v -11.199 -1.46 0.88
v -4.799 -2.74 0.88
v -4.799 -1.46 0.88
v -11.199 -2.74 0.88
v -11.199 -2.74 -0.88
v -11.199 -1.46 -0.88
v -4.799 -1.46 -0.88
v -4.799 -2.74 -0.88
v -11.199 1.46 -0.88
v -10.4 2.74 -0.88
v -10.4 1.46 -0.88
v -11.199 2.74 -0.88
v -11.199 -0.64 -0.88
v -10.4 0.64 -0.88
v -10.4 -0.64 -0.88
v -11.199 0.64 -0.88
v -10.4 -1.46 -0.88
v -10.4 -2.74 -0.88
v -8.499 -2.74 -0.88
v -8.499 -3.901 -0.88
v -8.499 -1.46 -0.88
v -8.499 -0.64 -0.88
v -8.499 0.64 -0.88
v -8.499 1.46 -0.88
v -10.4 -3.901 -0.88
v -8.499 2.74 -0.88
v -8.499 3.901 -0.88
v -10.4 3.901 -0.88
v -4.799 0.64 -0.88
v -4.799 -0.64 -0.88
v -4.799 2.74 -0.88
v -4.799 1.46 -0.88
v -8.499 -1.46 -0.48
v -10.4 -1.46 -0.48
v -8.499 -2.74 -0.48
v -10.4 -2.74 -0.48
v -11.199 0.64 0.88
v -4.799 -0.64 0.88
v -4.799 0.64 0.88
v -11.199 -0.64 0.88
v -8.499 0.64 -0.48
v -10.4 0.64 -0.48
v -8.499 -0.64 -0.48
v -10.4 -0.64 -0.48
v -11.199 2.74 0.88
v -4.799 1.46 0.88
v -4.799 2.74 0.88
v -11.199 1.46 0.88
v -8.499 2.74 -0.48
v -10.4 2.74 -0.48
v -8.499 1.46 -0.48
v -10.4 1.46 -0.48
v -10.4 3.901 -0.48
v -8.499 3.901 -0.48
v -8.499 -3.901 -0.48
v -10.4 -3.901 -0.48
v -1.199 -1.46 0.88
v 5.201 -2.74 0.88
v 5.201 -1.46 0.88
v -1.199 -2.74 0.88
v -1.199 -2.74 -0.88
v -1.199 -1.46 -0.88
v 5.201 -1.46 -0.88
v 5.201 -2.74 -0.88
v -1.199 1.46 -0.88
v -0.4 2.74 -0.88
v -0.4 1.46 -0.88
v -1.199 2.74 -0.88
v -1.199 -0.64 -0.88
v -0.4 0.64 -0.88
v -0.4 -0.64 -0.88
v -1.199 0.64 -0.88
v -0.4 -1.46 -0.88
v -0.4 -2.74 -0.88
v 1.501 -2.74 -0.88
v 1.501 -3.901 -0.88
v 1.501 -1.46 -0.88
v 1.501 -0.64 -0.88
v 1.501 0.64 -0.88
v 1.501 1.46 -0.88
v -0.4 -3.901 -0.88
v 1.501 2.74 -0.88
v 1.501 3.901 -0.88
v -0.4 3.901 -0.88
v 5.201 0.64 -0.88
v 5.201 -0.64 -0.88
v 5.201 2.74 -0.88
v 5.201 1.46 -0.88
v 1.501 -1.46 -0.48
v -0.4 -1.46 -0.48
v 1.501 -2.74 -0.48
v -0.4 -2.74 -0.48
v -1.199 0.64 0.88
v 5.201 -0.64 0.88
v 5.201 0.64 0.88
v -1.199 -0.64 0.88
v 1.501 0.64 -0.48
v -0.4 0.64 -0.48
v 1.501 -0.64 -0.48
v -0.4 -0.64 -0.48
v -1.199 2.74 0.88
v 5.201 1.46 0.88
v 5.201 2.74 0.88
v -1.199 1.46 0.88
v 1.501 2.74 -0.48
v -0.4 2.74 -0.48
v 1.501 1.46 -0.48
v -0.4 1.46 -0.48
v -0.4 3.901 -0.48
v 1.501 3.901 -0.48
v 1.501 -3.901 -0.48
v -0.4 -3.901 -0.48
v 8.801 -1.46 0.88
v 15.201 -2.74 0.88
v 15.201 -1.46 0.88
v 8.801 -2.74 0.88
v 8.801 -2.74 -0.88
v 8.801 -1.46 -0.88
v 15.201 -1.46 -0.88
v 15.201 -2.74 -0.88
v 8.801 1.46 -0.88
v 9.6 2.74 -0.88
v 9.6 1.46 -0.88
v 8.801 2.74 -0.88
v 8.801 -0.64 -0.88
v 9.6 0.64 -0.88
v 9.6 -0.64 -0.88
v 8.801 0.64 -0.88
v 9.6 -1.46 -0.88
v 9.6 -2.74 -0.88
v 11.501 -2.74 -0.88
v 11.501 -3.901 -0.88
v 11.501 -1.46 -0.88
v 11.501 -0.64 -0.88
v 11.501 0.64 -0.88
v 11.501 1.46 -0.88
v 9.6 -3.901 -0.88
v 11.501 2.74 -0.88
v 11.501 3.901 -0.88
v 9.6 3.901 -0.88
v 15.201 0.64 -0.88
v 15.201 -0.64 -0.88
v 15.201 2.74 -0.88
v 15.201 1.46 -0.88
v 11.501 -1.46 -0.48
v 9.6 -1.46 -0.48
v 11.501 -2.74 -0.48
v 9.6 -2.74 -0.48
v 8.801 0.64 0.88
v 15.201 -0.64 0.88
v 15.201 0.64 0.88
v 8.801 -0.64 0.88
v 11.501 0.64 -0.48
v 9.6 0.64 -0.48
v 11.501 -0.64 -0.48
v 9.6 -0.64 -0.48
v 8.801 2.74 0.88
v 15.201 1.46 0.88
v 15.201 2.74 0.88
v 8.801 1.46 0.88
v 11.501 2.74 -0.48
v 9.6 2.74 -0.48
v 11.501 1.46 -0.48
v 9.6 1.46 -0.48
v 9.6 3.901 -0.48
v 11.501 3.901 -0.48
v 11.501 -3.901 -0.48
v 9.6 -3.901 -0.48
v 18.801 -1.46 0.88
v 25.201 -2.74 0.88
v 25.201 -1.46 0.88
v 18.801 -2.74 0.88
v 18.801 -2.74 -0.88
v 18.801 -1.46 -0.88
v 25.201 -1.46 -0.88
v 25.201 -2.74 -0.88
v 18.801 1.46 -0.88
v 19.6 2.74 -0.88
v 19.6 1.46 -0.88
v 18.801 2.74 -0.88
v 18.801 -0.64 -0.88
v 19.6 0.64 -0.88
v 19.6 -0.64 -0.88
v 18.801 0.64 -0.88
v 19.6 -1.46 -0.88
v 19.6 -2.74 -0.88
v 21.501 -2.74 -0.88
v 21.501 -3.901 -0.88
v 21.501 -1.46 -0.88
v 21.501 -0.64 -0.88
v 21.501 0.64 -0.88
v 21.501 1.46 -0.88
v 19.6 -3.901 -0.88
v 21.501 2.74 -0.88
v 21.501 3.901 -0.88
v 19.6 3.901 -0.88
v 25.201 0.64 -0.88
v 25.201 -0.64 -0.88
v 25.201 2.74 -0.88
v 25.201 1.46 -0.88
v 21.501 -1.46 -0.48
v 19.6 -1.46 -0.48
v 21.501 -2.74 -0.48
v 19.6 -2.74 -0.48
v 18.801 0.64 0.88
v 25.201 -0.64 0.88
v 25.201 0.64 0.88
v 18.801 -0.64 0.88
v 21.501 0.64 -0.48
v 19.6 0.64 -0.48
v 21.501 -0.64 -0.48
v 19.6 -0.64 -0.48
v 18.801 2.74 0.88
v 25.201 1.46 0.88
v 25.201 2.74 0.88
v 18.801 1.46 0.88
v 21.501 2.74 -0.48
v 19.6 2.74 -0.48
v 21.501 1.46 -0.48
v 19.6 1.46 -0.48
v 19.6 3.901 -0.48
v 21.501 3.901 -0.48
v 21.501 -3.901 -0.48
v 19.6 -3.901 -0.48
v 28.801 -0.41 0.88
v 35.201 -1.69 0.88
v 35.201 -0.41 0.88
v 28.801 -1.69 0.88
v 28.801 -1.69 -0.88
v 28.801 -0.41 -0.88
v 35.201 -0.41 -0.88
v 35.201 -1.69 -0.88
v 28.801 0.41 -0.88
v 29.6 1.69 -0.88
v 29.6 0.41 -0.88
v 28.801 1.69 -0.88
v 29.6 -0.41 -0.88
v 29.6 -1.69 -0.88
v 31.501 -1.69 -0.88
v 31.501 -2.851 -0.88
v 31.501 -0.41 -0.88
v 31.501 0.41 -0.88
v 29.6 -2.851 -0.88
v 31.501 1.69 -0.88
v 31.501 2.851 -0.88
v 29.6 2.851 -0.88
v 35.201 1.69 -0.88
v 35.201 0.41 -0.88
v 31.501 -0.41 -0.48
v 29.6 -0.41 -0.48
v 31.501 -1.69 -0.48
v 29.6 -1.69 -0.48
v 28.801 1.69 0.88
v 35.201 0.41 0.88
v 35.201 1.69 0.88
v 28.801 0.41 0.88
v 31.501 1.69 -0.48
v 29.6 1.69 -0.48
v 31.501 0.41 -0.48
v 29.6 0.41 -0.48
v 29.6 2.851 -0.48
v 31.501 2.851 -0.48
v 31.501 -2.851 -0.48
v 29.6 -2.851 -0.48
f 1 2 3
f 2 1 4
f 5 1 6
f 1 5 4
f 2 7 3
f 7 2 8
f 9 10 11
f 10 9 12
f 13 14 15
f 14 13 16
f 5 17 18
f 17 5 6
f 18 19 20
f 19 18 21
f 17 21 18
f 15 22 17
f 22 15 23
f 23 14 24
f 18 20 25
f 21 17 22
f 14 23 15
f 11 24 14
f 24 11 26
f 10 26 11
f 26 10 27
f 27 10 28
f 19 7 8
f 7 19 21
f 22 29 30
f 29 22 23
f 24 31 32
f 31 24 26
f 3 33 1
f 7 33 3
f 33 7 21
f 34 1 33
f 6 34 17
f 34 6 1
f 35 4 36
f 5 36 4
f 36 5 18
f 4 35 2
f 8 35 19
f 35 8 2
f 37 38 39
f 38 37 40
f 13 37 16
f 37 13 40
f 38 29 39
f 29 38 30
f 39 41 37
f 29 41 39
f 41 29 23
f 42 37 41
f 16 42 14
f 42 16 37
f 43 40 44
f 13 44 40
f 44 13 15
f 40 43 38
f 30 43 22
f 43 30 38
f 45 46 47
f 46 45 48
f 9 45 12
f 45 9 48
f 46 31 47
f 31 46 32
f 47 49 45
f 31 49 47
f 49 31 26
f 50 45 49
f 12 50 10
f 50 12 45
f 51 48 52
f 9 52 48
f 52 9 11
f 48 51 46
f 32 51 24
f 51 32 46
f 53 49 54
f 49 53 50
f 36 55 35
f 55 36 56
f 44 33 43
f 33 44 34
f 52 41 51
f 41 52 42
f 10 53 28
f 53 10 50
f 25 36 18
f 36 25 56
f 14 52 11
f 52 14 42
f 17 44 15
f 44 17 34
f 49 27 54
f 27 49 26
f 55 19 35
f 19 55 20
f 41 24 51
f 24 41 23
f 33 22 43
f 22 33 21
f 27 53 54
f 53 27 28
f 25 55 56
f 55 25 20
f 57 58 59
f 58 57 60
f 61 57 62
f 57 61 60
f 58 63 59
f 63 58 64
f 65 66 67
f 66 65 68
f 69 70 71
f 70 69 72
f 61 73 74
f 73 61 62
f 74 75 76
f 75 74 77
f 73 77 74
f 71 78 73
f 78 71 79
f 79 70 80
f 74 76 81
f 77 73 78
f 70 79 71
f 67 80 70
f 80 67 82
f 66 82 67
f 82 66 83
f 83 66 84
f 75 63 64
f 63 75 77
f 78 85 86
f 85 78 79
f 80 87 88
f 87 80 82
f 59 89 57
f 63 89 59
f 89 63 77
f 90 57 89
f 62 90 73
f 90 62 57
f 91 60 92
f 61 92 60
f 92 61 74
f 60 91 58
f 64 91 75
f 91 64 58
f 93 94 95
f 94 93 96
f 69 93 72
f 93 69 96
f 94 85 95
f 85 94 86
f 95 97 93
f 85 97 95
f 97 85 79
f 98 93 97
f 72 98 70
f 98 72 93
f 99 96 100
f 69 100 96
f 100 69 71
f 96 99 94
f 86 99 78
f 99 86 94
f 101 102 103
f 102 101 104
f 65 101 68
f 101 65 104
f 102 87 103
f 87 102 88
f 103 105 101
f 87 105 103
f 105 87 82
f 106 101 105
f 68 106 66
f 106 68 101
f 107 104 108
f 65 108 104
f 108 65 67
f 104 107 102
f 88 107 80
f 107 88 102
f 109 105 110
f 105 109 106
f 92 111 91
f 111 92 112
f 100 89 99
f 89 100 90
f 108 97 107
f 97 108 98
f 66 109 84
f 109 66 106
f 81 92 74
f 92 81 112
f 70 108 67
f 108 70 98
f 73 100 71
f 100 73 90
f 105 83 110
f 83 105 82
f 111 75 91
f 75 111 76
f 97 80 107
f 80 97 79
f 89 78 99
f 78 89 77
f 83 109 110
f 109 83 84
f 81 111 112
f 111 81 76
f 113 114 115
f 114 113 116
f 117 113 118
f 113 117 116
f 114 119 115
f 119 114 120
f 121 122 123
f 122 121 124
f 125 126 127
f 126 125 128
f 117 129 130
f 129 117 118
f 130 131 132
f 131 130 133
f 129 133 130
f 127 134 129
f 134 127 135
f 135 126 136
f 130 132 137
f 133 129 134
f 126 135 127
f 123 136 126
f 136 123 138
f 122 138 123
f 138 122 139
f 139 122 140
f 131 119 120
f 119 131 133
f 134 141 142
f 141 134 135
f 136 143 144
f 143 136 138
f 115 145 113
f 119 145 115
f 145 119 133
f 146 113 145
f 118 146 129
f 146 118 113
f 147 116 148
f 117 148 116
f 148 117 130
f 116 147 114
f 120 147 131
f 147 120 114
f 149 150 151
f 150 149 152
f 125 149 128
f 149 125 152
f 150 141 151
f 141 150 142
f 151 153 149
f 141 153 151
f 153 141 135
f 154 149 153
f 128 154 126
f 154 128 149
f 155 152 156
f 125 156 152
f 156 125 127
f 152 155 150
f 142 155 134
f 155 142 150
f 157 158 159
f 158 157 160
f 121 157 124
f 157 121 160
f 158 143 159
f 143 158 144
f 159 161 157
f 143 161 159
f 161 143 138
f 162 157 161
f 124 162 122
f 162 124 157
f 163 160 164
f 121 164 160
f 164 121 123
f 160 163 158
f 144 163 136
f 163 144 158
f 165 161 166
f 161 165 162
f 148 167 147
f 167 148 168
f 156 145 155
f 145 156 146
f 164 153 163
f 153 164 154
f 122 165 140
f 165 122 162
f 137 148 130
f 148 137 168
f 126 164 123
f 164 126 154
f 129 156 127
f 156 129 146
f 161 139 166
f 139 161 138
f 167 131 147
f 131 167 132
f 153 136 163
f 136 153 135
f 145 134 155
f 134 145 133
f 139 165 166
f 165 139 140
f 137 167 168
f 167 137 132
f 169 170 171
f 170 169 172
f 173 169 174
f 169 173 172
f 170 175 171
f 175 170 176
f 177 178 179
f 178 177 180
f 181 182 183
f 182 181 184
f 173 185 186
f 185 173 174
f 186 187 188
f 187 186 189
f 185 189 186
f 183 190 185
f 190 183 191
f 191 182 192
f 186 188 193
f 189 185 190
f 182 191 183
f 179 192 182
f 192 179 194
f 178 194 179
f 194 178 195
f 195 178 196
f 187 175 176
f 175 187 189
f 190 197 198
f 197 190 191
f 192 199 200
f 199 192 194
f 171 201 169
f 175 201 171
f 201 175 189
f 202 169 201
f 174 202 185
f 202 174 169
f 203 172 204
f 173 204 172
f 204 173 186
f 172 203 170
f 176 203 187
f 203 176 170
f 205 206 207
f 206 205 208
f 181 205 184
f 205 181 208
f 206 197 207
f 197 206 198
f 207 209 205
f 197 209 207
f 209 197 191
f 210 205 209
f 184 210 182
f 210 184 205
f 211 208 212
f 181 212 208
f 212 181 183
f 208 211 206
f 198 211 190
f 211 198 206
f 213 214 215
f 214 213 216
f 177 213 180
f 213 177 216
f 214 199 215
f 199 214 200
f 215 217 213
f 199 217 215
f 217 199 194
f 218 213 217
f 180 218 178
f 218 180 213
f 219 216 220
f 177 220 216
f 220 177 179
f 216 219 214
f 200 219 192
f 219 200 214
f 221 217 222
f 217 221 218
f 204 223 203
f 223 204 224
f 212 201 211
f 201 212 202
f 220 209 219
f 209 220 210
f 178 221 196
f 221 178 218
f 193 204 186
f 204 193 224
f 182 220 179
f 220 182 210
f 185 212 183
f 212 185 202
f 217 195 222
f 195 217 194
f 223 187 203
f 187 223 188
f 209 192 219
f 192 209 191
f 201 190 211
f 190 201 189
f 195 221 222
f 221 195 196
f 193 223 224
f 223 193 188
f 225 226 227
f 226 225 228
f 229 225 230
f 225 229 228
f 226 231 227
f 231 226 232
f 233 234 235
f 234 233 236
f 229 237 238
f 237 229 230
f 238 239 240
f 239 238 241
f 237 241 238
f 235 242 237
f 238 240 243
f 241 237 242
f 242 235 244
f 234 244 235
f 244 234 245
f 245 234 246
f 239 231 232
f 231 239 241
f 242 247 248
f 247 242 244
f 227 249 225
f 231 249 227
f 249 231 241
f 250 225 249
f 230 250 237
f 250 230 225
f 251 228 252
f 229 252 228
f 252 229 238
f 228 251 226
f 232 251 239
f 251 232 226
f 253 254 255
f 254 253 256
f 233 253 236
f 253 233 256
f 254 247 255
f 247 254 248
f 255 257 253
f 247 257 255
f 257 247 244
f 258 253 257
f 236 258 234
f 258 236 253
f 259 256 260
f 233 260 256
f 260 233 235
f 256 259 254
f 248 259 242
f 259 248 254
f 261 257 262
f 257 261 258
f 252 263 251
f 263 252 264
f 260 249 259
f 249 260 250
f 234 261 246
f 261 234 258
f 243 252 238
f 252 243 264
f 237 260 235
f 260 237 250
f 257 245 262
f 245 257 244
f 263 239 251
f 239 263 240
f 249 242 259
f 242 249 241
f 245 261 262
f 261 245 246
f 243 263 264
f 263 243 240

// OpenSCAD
// file: usb.scad
e=.001;
$fn=48;

usb_c_depth = 7.35;
usb_c_width = 8.45;
usb_c_height = 2.56;
usb_c_edge_radius = .93;
usb_c_front_from_origin = 6.77-3.13;
usb_c_plug_end = 1.77-3.13;

usb_c_plug_depth = 7;
usb_c_plug_width = 8;
usb_c_plug_height = 2;

usb_c_plug_shroud_width = 12.5;
usb_c_plug_shroud_height = 6.25;
usb_c_plug_shroud_depth = 15;
usb_c_plug_shroud_radius = .5;

usb_a_depth = 10;
usb_a_width = 13.2;
usb_a_height = 5.7;
usb_a_edge_radius = .5;
usb_a_z = .6;
usb_a_overlap = .65;

usb_a_plug_depth = 12.5;
usb_a_plug_width = 12.1;
usb_a_plug_height = 4.5;
usb_a_plug_radius = .5;
usb_a_plug_end = -8;

usb_a_plug_shroud_width = 16;
usb_a_plug_shroud_height = 8;
usb_a_plug_shroud_depth = 25;
usb_a_plug_shroud_radius = .5;

module rounded_rect(w, h, r, center=false)
{
	off_x = center ? w/2 : 0 ;
	off_y = center ? h/2 : 0 ;
	hull()
	{
		for (x=[r,w-r])
		for (y=[r,h-r])
		translate([off_x+x,off_y+y])
		circle(r=r);
	}
}

module usb_c_keepout()
{
	color([.9,.9,.9])
	{
		translate([-10, -9.2/2.+1.25, 0])
			cube([20, 9.2-2.5, 3.2]);
		
		for (y=[-9.2/2.+1.25, 9.2/2.-1.25])
			translate([-10, y, 1.6])
				rotate([0,90,0])
					scale([1.6,1.25,1])
						cylinder(h=20, r=1);
	}
}

module usb_c_plug(margin=0)
{
color([.97,.97,.97])

translate([-usb_c_plug_width/2-margin,
            usb_c_plug_depth+margin,
           -usb_c_plug_height/2-margin ])
rotate([90,0,0])
linear_extrude(usb_c_plug_depth+2*margin+e) rounded_rect(usb_c_plug_width+2*margin, usb_c_plug_height+2*margin, usb_c_plug_height/2+margin);
	
color([.3,.3,.3])

translate([-usb_c_plug_shroud_width/2-margin,
            usb_c_plug_depth+usb_c_plug_shroud_depth+margin,
           -usb_c_plug_shroud_height/2-margin ])
rotate([90,0,0])
linear_extrude(usb_c_plug_shroud_depth+2*margin+e) rounded_rect(usb_c_plug_shroud_width+2*margin, usb_c_plug_shroud_height+2*margin, usb_c_plug_shroud_radius+margin);
	

}

module usb_c_type_c31_m12(margin=0)
{

	color([.9,.9,.9])
	{

translate([-usb_c_width/2-margin,usb_c_front_from_origin+margin,-margin ])
rotate([90,0,0])
linear_extrude(usb_c_depth+2*margin) rounded_rect(usb_c_width+2*margin, usb_c_height+2*margin, usb_c_edge_radius+margin);
	}
	translate([0,usb_c_plug_end,usb_c_height/2]) children();
}


module usb_a_shou_han(margin=0)
{
	color([.9,.9,.9])
	{

translate([-usb_a_width/2-margin,usb_a_overlap+margin,usb_a_z -margin ])
rotate([90,0,0])
linear_extrude(usb_a_depth+2*margin) rounded_rect(usb_a_width+2*margin, usb_a_height+2*margin, usb_a_edge_radius+margin);
	}
	translate([0,usb_a_plug_end/*+8.65*/,usb_a_height/2+usb_a_z]) children();

}


module usb_a_plug(margin=0)
{
color([.97,.97,.97])

translate([-usb_a_plug_width/2-margin,
            usb_a_plug_depth+margin,
           -usb_a_plug_height/2-margin ])
rotate([90,0,0])
linear_extrude(usb_a_plug_depth+2*margin+e) rounded_rect(usb_a_plug_width+2*margin, usb_a_plug_height+2*margin, usb_a_plug_radius+margin);
	
color([.3,.3,.3])

translate([-usb_a_plug_shroud_width/2-margin,
            usb_a_plug_depth+usb_a_plug_shroud_depth+margin,
           -usb_a_plug_shroud_height/2-margin ])
rotate([90,0,0])
linear_extrude(usb_a_plug_shroud_depth+2*margin+e) rounded_rect(usb_a_plug_shroud_width+2*margin, usb_a_plug_shroud_height+2*margin,usb_a_plug_shroud_radius+margin);
	

}


translate([20,0,0])usb_c_type_c31_m12(margin=0) usb_c_plug(margin=0);

usb_a_shou_han(margin=0) usb_a_plug(margin=0);
// file: case.scad
e=.001;
$fn=48;
padding=5;

use <usb.scad>

hole_dist_x = 40;
hole_dist_y = 80;
pcb_thickness = 1.6;
pcb_radius = 3;
inner_radius = 4;
wall_thickness = 1;
wall_height = 9.6;
thread = 3;
bottom_thickness = .8;
border_width = 1.;
top_thickness = .8;
top_edge_height = 2.5;
top_edge_width = 1.;
top_edge_margin = 0.;
top_grid_height = 2;
grid_width=.8;
leg_height = .6;
leg_radius = 2.7;
usb_c_board_offset = 3; // based on kicad position
screw_tension_gap = 0;


lightpipe_width = 2.5;
lightpipe_height = 1.6;
lightpipe_bar_width = 2.2;
lightpipe_guide_thickness = 2;
lightpipe_guide_border = 1;

led_pitch = 2.1;
led_x = hole_dist_x;

led_clearance = 1.8;
outer_radius = inner_radius+wall_thickness;
screw_fit_radius = (thread*0.9)/2;
total_height = bottom_thickness+wall_height+top_thickness;
component_z = bottom_thickness+leg_height+pcb_thickness;

module notched_block(height, radius, notch_size)
{
	translate([notch_size-radius,-radius, 0])
		cube([hole_dist_x-2*(notch_size-radius), hole_dist_y+2*notch_size, height]);
	translate([-notch_size, notch_size-radius, 0])
		cube([hole_dist_x+2*notch_size, hole_dist_y-2*(notch_size-radius), height]);
}

module rounded_block(height, radius)
{
	notched_block(height, radius, radius);
	at_holes() cylinder(h=height, r=radius);
}


module preview()
{
	if ($preview) children();
}

module usb_c(margin=0)
{
	translate([0,-usb_c_board_offset,0]) 
	usb_c_type_c31_m12(margin) usb_c_plug(margin);
}

module usb_a(margin=0)
{
	usb_a_shou_han(margin) usb_a_plug(margin);
}

module usb_a_keepout()
{
	usb_a_shou_han(.25) usb_a_plug(.5);
}

module usb_c_keepout()
{
	usb_c(margin=.5);
}

module on_pcb()
{
	translate([0,0,component_z]) children();
}

module at_front()
{
	translate([hole_dist_x+pcb_radius,hole_dist_y/2,0]) rotate([0,0,-90])  children();
}

module at_top()
{
	translate([hole_dist_x/2,hole_dist_y+pcb_radius,0]) children();
}

module usb_a_locations()
{
	at_front() for (x=[-30,-10,10,30] ) translate([x, 0, 0]) children();
}

module led_locations()
{
	for (dy=[-30,-10,10,30] ) translate([0, hole_dist_y/2+dy, 0]) children();
}

module at_holes(x, y)
{
	for (x = [0, hole_dist_x])
		for (y = [0, hole_dist_y])
			translate([x,y,0])
				children();
}

module leg(h)
{
	difference()
	{
	translate([0,0,-e])
		cylinder(h=h+e, r=leg_radius);
	translate([0,0,-e*2])
		cylinder(h=h+e*3, r=screw_fit_radius);
	}
}

module pcb()
{
	translate([0,0,bottom_thickness+leg_height])
		color("green")
			rounded_block(pcb_thickness, pcb_radius);
}

module h_grid(n, pitch, depth, w, h)
{
	translate([-w/2,-depth/2, 0])
		for (i=[0:n-1])
			translate([(i-(n-1)/2)*pitch,0,0])
				cube([w, depth, h]);
}

module grid(w, h, n_rows, row_pitch, n_cols, col_pitch, bar_w, bar_h)
{
	translate([hole_dist_x/2,hole_dist_y/2,0])
	{
		h_grid(n_rows, row_pitch, h, bar_w, bar_h);
		rotate([0,0,90])
		h_grid(n_cols, col_pitch, w, bar_w, bar_h);
	}
}


module case()
{
	at_holes() translate([0, 0, bottom_thickness])leg(leg_height);

	difference()
	{
		difference()
		{
			rounded_block(bottom_thickness+wall_height, outer_radius);
			translate([0,0,bottom_thickness]) rounded_block(wall_height+e, inner_radius);
		}
		union()
		{
			at_holes() translate([0,0,-e]) cylinder(bottom_thickness+2*e, r=screw_fit_radius);
			on_pcb()
			{
				at_top() usb_c_keepout();
				usb_a_locations() usb_a_keepout();
			}
		}
	}

	translate([0,0,bottom_thickness-e]) grid(hole_dist_x+(outer_radius-e)*2, hole_dist_y+(outer_radius-e)*2, 4, 10, 7, 10, grid_width, leg_height+e);
}

module light_pipe_keepout(n_leds)
{
	for (i=[0:n_leds-1])
	{
		dy = (i-(n_leds-1)/2)*led_pitch;
		w = lightpipe_width;
		h = lightpipe_height;
		z = total_height-top_thickness;
		translate([-w/2, -h/2+dy, z-e]) 
			cube( [w,h,top_thickness+e*2] );
	}
	w = lightpipe_bar_width;
	h = led_pitch*(n_leds-1)+lightpipe_height+lightpipe_guide_border*2;
	z = component_z + led_clearance;
    d = total_height-top_thickness-z;

	translate([-w/2,-h/2-e,z-e]) 
		cube([w, h+2*e, d+e]);

}

module light_pipe(n_leds)
{
color("#f0f0f0")
{

	for (i=[0:n_leds-1])
	{
		dy = (i-(n_leds-1)/2)*led_pitch;
		w = lightpipe_bar_width*.8;
		h = lightpipe_height*.8;
		z = component_z + led_clearance;
		translate([-w/2, -h/2+dy, z-e]) 
			cube( [w,h,total_height-z] );
	}
	w = .4;
	h = led_pitch*(n_leds-1)+lightpipe_height+lightpipe_guide_border*2;
    d = 1.9;
	z = total_height-top_thickness-d;

	translate([-lightpipe_bar_width*.8/2,-h/2-e,z-e]) 
		cube([w, h+2*e, d+e]);

}
}

module light_pipe_guide(n_leds)
{
	w = lightpipe_width+lightpipe_guide_border*2;
	h = led_pitch*(n_leds-1)+lightpipe_height+lightpipe_guide_border*2;
	d = lightpipe_guide_thickness;
	z = wall_height+bottom_thickness-lightpipe_guide_thickness;
	translate([-w/2,-h/2,z]) 
		cube([w, h, d+e]);
}

module leds_hub()
{
	translate([6,hole_dist_y,0])
		children();
}


module top()
{
	difference()
	{
		union()
		{
		translate([0,0,bottom_thickness+wall_height])
		{
			translate([0,0,-top_grid_height]) grid(hole_dist_x+(inner_radius+e)*2, hole_dist_y+(inner_radius+e)*2, 4, 10, 7, 10, grid_width, top_grid_height+e);

			rounded_block(top_thickness, outer_radius);
			difference()
			{
				translate([0,0,-top_edge_height])
				rounded_block(top_edge_height+e, inner_radius-top_edge_margin);
				translate([0,0,-top_edge_height-e])
				rounded_block(top_edge_height+2*e, inner_radius-top_edge_margin-top_edge_width);
			}
		}
			on_pcb() translate([0,0,screw_tension_gap]) at_holes() leg(wall_height-pcb_thickness-leg_height+e);
			led_locations() light_pipe_guide(3);
			leds_hub() light_pipe_guide(2);
		}

		union()
		{
		on_pcb()
		{
			at_top() usb_c_keepout();
			usb_a_locations() usb_a_keepout();
		}
		led_locations() light_pipe_keepout(3);
		leds_hub() light_pipe_keepout(2);
		}
	}
}

module flip()
{
	translate([0,hole_dist_y,bottom_thickness+wall_height+top_thickness]) rotate([180,0,0]) children();
}

module next()
{
	translate([-hole_dist_x-2*outer_radius-padding,0 , 0]) children();
}

preview()
{
	pcb();
	on_pcb()
	{
		at_top() usb_c();
		usb_a_locations() usb_a();
	}
	flip()
	next()
	{
		led_locations() light_pipe(3);
		leds_hub() light_pipe(2);
	}
}

case();
next() 
flip()
top();
// main file
use <case.scad>

for (i=[0:10:30])
translate([i,0,0]) rotate([0,-90,0]) light_pipe(3);

translate([40,0,0]) rotate([0,-90,0]) light_pipe(2);
